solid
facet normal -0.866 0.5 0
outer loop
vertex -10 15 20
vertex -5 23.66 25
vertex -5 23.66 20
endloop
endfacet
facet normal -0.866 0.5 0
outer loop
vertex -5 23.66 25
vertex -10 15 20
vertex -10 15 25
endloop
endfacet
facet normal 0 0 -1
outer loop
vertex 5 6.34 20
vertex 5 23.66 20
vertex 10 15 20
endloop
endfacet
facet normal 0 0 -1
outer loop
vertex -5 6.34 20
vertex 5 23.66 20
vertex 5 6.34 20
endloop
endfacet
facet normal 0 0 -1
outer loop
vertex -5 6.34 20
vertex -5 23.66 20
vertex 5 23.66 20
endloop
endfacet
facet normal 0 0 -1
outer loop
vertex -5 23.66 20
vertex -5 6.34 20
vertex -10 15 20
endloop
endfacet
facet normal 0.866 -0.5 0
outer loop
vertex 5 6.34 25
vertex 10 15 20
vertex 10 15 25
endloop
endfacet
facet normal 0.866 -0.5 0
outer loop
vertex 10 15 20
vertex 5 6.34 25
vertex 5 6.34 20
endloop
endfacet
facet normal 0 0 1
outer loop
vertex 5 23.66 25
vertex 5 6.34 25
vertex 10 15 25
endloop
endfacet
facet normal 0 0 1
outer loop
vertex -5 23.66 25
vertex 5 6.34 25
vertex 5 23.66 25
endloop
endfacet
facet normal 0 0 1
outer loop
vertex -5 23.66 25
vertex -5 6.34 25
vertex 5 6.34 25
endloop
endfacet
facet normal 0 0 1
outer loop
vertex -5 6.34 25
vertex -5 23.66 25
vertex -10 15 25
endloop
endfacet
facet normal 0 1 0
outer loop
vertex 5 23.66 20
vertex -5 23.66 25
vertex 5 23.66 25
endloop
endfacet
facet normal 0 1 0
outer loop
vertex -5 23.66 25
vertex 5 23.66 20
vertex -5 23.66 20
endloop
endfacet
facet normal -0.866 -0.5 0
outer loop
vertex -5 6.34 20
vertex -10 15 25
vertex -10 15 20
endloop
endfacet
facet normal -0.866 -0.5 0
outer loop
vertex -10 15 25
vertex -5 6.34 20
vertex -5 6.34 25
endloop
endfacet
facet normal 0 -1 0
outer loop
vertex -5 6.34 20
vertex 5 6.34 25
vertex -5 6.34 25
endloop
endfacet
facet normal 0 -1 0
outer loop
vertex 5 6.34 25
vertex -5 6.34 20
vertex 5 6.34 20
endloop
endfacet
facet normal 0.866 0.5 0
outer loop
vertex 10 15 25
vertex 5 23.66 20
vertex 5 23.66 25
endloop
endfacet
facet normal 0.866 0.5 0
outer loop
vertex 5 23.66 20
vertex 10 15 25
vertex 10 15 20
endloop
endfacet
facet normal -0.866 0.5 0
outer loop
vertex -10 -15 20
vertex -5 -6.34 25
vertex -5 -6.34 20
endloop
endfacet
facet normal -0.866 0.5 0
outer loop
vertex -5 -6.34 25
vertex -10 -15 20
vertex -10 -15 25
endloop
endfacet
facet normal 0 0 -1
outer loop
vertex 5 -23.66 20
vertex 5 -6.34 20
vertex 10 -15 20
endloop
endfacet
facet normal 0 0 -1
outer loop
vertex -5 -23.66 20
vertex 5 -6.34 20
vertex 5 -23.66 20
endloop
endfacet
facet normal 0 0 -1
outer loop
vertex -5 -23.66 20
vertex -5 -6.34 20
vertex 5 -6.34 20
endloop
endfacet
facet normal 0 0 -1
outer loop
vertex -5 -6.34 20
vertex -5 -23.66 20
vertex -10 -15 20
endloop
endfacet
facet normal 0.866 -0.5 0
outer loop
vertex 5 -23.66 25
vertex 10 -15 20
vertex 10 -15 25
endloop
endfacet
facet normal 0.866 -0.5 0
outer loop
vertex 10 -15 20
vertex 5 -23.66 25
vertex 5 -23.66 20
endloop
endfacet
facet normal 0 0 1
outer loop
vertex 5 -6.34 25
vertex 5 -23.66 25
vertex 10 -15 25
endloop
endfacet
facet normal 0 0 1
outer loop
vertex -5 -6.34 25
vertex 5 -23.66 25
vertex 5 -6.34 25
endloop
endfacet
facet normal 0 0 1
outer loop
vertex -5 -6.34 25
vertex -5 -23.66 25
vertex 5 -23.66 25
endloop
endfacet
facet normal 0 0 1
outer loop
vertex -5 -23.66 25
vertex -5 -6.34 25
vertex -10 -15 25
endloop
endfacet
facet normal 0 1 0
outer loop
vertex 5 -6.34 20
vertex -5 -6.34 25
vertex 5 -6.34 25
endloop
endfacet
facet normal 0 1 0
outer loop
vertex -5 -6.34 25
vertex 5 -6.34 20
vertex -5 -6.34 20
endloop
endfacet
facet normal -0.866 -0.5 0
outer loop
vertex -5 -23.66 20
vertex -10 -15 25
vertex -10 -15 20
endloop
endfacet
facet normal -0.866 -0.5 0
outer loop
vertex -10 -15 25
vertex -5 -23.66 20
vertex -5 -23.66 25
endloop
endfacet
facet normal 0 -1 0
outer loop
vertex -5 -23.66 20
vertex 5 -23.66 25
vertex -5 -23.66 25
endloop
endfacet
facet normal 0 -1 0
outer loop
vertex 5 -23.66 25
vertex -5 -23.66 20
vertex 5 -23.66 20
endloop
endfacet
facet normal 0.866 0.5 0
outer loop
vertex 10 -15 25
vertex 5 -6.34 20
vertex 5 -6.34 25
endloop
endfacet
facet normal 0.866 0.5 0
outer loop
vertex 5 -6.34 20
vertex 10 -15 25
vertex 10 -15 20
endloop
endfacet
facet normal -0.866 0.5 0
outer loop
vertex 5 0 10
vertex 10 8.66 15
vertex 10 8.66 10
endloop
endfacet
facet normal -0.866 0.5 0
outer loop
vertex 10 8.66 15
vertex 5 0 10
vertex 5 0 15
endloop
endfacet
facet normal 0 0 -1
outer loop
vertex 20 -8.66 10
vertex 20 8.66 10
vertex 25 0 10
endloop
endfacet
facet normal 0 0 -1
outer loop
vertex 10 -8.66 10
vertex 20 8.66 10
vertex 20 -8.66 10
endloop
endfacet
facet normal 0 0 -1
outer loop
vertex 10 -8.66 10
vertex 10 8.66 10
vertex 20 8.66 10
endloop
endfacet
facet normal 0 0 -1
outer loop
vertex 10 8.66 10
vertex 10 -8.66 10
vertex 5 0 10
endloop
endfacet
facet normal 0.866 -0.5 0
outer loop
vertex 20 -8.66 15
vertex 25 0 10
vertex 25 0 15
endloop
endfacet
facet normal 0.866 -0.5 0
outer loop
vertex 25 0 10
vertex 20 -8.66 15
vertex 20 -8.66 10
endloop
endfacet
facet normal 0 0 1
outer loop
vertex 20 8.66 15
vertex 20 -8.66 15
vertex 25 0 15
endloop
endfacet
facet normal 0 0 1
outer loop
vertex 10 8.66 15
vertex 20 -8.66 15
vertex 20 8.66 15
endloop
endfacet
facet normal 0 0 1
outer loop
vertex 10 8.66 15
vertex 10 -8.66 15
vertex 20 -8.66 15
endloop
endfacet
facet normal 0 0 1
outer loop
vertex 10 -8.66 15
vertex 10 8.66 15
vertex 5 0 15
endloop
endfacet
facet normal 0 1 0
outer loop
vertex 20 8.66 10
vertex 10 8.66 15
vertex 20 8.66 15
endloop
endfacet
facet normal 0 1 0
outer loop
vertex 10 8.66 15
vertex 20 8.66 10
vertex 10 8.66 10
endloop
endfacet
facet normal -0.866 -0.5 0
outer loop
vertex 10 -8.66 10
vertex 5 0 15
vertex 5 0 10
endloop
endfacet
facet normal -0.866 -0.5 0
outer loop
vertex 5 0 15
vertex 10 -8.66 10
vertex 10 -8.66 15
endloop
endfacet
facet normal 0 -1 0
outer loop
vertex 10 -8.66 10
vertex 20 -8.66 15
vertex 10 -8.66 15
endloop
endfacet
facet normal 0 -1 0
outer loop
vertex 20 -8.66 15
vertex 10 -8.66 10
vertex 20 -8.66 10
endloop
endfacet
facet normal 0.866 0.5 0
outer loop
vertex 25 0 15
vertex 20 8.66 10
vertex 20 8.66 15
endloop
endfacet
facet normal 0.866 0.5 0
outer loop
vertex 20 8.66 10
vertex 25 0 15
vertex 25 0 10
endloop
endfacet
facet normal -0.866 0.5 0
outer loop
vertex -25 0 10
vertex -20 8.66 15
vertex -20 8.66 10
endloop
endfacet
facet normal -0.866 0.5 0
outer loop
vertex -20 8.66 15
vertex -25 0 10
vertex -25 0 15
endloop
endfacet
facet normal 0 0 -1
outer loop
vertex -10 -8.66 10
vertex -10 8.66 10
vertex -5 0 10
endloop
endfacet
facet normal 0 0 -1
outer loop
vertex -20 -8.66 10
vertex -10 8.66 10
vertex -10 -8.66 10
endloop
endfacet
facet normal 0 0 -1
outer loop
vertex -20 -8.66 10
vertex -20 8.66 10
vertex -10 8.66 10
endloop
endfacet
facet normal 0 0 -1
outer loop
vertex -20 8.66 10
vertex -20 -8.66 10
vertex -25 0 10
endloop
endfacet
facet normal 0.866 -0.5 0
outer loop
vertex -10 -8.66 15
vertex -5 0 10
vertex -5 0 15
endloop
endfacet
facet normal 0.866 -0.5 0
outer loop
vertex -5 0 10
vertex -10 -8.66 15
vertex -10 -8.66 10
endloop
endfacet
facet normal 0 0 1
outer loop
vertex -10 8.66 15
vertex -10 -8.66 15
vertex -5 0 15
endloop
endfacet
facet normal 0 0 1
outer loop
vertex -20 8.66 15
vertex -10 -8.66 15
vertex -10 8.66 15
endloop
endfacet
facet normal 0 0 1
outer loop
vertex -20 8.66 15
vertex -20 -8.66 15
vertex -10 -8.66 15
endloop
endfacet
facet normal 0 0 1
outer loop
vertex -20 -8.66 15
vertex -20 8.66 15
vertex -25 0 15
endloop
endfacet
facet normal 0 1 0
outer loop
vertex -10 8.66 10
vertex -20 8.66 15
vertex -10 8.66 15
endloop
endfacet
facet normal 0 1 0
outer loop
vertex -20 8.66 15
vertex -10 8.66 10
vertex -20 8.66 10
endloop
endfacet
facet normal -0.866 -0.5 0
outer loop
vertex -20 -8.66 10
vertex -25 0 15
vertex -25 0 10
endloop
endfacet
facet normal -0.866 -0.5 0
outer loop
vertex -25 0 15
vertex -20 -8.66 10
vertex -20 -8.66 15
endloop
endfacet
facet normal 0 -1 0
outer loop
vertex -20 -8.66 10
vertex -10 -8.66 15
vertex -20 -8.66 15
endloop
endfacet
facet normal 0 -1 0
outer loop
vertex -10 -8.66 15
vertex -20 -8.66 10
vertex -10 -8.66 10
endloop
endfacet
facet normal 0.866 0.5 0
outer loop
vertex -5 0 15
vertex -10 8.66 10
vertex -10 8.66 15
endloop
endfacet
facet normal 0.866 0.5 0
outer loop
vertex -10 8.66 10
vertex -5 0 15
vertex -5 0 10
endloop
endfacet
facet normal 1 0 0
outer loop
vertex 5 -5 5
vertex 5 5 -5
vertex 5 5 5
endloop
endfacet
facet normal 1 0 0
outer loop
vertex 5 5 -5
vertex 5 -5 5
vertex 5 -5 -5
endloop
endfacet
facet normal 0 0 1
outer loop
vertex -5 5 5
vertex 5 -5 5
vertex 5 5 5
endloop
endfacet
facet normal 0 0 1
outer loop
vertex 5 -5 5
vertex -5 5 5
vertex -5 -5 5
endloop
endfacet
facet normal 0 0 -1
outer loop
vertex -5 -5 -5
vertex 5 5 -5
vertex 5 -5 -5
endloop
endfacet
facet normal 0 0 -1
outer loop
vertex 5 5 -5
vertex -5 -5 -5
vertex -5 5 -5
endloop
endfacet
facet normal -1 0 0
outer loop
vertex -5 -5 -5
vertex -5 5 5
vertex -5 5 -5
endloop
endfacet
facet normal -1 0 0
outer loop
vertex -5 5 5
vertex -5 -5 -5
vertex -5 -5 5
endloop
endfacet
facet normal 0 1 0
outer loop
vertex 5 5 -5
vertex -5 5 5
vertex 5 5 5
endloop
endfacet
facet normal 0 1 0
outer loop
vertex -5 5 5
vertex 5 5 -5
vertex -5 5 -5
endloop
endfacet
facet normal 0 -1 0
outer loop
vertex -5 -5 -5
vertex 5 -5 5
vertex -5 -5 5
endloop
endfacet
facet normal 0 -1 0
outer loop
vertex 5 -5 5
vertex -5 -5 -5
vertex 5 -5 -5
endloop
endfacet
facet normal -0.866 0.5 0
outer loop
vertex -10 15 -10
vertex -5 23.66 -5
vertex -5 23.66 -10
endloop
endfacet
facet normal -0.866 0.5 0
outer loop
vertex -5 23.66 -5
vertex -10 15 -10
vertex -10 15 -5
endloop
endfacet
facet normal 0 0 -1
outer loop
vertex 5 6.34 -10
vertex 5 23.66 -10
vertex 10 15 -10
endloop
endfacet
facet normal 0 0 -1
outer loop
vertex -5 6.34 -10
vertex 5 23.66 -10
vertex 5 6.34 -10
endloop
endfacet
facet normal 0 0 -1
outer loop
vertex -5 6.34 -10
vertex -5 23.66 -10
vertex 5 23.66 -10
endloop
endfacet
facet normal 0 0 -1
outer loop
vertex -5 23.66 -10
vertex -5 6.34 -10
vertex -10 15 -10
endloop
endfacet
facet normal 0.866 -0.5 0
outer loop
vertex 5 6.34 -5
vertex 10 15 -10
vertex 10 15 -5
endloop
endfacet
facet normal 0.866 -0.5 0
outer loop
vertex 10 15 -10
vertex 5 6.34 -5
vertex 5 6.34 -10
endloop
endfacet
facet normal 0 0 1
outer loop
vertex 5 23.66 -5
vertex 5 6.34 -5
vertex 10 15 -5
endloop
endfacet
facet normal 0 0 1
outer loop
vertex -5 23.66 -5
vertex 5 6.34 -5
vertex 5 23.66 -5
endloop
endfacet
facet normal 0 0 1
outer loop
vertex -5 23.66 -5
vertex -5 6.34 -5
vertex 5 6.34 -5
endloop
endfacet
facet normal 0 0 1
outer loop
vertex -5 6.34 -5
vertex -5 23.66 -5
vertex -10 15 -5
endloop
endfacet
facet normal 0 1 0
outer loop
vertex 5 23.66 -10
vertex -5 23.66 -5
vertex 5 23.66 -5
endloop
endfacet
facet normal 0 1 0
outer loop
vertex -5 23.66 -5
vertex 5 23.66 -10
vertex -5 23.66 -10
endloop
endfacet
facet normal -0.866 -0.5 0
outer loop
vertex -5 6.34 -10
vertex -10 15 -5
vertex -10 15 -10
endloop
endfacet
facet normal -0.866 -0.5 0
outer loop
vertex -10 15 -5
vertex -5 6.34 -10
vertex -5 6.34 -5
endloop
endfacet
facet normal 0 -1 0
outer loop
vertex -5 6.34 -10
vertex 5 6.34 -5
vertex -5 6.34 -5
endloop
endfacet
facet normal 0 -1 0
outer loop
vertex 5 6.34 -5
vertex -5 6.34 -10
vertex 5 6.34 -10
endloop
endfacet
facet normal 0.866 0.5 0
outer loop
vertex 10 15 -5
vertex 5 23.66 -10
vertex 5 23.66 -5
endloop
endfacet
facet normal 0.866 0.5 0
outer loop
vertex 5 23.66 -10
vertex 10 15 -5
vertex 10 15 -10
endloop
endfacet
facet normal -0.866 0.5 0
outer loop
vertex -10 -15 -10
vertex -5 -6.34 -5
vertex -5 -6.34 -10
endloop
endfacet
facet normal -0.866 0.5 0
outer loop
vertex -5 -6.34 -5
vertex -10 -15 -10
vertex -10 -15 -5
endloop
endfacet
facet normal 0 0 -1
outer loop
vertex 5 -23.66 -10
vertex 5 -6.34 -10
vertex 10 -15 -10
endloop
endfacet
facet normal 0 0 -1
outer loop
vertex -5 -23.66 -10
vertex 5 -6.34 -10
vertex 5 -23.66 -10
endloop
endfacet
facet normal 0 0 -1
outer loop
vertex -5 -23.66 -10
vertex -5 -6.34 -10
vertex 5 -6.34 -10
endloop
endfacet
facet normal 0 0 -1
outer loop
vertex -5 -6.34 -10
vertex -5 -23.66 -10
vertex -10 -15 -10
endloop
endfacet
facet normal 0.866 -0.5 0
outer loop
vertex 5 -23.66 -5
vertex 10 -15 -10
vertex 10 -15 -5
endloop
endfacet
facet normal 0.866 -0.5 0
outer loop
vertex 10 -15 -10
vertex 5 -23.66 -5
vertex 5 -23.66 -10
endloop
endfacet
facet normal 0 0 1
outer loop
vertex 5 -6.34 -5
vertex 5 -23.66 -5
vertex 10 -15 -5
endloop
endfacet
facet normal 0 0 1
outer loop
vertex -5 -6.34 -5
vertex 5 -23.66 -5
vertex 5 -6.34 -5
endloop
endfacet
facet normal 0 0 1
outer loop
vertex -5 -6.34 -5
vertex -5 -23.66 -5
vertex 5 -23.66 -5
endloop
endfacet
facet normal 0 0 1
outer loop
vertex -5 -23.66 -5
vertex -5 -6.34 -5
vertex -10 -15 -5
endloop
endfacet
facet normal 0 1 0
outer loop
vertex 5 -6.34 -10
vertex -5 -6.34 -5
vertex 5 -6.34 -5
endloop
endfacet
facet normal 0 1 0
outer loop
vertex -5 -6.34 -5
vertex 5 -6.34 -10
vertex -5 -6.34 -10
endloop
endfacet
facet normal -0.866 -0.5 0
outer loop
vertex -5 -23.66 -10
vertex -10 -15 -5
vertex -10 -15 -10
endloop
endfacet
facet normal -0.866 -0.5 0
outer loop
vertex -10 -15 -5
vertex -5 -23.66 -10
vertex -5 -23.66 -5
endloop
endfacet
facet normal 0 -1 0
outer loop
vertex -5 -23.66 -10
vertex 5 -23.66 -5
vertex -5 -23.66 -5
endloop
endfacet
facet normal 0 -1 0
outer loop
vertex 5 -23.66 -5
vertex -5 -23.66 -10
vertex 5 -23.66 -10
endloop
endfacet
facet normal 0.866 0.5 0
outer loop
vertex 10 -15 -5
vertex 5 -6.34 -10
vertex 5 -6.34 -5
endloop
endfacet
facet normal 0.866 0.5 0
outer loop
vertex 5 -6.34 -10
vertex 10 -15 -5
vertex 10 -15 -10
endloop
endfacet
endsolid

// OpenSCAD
// Parameters for components
hex_radius = 10; // Radius of the hexagonal prism
hex_height = 5;  // Height of the hexagonal prism
cube_size = 10;  // Side length of the cube

// Function to create a hexagonal prism
module hexagonal_component() {
    linear_extrude(height = hex_height)
    polygon(points = [
        [hex_radius * cos(0), hex_radius * sin(0)],
        [hex_radius * cos(60), hex_radius * sin(60)],
        [hex_radius * cos(120), hex_radius * sin(120)],
        [hex_radius * cos(180), hex_radius * sin(180)],
        [hex_radius * cos(240), hex_radius * sin(240)],
        [hex_radius * cos(300), hex_radius * sin(300)]
    ]);
}

// Function to create a cubic component
module cubic_component() {
    cube([cube_size, cube_size, cube_size], center = true);
}

// Assembly of the model
module assembly() {
    // Layer 1: Topmost layer with two hexagonal components
    translate([0, 15, 20]) rotate([0, 0, 0]) hexagonal_component(); // Hexagonal component 1
    translate([0, -15, 20]) rotate([0, 0, 0]) hexagonal_component(); // Hexagonal component 2

    // Layer 2: Middle layer with two hexagonal components
    translate([15, 0, 10]) rotate([0, 0, 0]) hexagonal_component(); // Hexagonal component 3
    translate([-15, 0, 10]) rotate([0, 0, 0]) hexagonal_component(); // Hexagonal component 4

    // Layer 3: Central cubic component
    translate([0, 0, 0]) cubic_component();

    // Layer 4: Bottommost layer with two hexagonal components
    translate([0, 15, -10]) rotate([0, 0, 0]) hexagonal_component(); // Hexagonal component 5
    translate([0, -15, -10]) rotate([0, 0, 0]) hexagonal_component(); // Hexagonal component 6
}

// Render the assembly
assembly();
